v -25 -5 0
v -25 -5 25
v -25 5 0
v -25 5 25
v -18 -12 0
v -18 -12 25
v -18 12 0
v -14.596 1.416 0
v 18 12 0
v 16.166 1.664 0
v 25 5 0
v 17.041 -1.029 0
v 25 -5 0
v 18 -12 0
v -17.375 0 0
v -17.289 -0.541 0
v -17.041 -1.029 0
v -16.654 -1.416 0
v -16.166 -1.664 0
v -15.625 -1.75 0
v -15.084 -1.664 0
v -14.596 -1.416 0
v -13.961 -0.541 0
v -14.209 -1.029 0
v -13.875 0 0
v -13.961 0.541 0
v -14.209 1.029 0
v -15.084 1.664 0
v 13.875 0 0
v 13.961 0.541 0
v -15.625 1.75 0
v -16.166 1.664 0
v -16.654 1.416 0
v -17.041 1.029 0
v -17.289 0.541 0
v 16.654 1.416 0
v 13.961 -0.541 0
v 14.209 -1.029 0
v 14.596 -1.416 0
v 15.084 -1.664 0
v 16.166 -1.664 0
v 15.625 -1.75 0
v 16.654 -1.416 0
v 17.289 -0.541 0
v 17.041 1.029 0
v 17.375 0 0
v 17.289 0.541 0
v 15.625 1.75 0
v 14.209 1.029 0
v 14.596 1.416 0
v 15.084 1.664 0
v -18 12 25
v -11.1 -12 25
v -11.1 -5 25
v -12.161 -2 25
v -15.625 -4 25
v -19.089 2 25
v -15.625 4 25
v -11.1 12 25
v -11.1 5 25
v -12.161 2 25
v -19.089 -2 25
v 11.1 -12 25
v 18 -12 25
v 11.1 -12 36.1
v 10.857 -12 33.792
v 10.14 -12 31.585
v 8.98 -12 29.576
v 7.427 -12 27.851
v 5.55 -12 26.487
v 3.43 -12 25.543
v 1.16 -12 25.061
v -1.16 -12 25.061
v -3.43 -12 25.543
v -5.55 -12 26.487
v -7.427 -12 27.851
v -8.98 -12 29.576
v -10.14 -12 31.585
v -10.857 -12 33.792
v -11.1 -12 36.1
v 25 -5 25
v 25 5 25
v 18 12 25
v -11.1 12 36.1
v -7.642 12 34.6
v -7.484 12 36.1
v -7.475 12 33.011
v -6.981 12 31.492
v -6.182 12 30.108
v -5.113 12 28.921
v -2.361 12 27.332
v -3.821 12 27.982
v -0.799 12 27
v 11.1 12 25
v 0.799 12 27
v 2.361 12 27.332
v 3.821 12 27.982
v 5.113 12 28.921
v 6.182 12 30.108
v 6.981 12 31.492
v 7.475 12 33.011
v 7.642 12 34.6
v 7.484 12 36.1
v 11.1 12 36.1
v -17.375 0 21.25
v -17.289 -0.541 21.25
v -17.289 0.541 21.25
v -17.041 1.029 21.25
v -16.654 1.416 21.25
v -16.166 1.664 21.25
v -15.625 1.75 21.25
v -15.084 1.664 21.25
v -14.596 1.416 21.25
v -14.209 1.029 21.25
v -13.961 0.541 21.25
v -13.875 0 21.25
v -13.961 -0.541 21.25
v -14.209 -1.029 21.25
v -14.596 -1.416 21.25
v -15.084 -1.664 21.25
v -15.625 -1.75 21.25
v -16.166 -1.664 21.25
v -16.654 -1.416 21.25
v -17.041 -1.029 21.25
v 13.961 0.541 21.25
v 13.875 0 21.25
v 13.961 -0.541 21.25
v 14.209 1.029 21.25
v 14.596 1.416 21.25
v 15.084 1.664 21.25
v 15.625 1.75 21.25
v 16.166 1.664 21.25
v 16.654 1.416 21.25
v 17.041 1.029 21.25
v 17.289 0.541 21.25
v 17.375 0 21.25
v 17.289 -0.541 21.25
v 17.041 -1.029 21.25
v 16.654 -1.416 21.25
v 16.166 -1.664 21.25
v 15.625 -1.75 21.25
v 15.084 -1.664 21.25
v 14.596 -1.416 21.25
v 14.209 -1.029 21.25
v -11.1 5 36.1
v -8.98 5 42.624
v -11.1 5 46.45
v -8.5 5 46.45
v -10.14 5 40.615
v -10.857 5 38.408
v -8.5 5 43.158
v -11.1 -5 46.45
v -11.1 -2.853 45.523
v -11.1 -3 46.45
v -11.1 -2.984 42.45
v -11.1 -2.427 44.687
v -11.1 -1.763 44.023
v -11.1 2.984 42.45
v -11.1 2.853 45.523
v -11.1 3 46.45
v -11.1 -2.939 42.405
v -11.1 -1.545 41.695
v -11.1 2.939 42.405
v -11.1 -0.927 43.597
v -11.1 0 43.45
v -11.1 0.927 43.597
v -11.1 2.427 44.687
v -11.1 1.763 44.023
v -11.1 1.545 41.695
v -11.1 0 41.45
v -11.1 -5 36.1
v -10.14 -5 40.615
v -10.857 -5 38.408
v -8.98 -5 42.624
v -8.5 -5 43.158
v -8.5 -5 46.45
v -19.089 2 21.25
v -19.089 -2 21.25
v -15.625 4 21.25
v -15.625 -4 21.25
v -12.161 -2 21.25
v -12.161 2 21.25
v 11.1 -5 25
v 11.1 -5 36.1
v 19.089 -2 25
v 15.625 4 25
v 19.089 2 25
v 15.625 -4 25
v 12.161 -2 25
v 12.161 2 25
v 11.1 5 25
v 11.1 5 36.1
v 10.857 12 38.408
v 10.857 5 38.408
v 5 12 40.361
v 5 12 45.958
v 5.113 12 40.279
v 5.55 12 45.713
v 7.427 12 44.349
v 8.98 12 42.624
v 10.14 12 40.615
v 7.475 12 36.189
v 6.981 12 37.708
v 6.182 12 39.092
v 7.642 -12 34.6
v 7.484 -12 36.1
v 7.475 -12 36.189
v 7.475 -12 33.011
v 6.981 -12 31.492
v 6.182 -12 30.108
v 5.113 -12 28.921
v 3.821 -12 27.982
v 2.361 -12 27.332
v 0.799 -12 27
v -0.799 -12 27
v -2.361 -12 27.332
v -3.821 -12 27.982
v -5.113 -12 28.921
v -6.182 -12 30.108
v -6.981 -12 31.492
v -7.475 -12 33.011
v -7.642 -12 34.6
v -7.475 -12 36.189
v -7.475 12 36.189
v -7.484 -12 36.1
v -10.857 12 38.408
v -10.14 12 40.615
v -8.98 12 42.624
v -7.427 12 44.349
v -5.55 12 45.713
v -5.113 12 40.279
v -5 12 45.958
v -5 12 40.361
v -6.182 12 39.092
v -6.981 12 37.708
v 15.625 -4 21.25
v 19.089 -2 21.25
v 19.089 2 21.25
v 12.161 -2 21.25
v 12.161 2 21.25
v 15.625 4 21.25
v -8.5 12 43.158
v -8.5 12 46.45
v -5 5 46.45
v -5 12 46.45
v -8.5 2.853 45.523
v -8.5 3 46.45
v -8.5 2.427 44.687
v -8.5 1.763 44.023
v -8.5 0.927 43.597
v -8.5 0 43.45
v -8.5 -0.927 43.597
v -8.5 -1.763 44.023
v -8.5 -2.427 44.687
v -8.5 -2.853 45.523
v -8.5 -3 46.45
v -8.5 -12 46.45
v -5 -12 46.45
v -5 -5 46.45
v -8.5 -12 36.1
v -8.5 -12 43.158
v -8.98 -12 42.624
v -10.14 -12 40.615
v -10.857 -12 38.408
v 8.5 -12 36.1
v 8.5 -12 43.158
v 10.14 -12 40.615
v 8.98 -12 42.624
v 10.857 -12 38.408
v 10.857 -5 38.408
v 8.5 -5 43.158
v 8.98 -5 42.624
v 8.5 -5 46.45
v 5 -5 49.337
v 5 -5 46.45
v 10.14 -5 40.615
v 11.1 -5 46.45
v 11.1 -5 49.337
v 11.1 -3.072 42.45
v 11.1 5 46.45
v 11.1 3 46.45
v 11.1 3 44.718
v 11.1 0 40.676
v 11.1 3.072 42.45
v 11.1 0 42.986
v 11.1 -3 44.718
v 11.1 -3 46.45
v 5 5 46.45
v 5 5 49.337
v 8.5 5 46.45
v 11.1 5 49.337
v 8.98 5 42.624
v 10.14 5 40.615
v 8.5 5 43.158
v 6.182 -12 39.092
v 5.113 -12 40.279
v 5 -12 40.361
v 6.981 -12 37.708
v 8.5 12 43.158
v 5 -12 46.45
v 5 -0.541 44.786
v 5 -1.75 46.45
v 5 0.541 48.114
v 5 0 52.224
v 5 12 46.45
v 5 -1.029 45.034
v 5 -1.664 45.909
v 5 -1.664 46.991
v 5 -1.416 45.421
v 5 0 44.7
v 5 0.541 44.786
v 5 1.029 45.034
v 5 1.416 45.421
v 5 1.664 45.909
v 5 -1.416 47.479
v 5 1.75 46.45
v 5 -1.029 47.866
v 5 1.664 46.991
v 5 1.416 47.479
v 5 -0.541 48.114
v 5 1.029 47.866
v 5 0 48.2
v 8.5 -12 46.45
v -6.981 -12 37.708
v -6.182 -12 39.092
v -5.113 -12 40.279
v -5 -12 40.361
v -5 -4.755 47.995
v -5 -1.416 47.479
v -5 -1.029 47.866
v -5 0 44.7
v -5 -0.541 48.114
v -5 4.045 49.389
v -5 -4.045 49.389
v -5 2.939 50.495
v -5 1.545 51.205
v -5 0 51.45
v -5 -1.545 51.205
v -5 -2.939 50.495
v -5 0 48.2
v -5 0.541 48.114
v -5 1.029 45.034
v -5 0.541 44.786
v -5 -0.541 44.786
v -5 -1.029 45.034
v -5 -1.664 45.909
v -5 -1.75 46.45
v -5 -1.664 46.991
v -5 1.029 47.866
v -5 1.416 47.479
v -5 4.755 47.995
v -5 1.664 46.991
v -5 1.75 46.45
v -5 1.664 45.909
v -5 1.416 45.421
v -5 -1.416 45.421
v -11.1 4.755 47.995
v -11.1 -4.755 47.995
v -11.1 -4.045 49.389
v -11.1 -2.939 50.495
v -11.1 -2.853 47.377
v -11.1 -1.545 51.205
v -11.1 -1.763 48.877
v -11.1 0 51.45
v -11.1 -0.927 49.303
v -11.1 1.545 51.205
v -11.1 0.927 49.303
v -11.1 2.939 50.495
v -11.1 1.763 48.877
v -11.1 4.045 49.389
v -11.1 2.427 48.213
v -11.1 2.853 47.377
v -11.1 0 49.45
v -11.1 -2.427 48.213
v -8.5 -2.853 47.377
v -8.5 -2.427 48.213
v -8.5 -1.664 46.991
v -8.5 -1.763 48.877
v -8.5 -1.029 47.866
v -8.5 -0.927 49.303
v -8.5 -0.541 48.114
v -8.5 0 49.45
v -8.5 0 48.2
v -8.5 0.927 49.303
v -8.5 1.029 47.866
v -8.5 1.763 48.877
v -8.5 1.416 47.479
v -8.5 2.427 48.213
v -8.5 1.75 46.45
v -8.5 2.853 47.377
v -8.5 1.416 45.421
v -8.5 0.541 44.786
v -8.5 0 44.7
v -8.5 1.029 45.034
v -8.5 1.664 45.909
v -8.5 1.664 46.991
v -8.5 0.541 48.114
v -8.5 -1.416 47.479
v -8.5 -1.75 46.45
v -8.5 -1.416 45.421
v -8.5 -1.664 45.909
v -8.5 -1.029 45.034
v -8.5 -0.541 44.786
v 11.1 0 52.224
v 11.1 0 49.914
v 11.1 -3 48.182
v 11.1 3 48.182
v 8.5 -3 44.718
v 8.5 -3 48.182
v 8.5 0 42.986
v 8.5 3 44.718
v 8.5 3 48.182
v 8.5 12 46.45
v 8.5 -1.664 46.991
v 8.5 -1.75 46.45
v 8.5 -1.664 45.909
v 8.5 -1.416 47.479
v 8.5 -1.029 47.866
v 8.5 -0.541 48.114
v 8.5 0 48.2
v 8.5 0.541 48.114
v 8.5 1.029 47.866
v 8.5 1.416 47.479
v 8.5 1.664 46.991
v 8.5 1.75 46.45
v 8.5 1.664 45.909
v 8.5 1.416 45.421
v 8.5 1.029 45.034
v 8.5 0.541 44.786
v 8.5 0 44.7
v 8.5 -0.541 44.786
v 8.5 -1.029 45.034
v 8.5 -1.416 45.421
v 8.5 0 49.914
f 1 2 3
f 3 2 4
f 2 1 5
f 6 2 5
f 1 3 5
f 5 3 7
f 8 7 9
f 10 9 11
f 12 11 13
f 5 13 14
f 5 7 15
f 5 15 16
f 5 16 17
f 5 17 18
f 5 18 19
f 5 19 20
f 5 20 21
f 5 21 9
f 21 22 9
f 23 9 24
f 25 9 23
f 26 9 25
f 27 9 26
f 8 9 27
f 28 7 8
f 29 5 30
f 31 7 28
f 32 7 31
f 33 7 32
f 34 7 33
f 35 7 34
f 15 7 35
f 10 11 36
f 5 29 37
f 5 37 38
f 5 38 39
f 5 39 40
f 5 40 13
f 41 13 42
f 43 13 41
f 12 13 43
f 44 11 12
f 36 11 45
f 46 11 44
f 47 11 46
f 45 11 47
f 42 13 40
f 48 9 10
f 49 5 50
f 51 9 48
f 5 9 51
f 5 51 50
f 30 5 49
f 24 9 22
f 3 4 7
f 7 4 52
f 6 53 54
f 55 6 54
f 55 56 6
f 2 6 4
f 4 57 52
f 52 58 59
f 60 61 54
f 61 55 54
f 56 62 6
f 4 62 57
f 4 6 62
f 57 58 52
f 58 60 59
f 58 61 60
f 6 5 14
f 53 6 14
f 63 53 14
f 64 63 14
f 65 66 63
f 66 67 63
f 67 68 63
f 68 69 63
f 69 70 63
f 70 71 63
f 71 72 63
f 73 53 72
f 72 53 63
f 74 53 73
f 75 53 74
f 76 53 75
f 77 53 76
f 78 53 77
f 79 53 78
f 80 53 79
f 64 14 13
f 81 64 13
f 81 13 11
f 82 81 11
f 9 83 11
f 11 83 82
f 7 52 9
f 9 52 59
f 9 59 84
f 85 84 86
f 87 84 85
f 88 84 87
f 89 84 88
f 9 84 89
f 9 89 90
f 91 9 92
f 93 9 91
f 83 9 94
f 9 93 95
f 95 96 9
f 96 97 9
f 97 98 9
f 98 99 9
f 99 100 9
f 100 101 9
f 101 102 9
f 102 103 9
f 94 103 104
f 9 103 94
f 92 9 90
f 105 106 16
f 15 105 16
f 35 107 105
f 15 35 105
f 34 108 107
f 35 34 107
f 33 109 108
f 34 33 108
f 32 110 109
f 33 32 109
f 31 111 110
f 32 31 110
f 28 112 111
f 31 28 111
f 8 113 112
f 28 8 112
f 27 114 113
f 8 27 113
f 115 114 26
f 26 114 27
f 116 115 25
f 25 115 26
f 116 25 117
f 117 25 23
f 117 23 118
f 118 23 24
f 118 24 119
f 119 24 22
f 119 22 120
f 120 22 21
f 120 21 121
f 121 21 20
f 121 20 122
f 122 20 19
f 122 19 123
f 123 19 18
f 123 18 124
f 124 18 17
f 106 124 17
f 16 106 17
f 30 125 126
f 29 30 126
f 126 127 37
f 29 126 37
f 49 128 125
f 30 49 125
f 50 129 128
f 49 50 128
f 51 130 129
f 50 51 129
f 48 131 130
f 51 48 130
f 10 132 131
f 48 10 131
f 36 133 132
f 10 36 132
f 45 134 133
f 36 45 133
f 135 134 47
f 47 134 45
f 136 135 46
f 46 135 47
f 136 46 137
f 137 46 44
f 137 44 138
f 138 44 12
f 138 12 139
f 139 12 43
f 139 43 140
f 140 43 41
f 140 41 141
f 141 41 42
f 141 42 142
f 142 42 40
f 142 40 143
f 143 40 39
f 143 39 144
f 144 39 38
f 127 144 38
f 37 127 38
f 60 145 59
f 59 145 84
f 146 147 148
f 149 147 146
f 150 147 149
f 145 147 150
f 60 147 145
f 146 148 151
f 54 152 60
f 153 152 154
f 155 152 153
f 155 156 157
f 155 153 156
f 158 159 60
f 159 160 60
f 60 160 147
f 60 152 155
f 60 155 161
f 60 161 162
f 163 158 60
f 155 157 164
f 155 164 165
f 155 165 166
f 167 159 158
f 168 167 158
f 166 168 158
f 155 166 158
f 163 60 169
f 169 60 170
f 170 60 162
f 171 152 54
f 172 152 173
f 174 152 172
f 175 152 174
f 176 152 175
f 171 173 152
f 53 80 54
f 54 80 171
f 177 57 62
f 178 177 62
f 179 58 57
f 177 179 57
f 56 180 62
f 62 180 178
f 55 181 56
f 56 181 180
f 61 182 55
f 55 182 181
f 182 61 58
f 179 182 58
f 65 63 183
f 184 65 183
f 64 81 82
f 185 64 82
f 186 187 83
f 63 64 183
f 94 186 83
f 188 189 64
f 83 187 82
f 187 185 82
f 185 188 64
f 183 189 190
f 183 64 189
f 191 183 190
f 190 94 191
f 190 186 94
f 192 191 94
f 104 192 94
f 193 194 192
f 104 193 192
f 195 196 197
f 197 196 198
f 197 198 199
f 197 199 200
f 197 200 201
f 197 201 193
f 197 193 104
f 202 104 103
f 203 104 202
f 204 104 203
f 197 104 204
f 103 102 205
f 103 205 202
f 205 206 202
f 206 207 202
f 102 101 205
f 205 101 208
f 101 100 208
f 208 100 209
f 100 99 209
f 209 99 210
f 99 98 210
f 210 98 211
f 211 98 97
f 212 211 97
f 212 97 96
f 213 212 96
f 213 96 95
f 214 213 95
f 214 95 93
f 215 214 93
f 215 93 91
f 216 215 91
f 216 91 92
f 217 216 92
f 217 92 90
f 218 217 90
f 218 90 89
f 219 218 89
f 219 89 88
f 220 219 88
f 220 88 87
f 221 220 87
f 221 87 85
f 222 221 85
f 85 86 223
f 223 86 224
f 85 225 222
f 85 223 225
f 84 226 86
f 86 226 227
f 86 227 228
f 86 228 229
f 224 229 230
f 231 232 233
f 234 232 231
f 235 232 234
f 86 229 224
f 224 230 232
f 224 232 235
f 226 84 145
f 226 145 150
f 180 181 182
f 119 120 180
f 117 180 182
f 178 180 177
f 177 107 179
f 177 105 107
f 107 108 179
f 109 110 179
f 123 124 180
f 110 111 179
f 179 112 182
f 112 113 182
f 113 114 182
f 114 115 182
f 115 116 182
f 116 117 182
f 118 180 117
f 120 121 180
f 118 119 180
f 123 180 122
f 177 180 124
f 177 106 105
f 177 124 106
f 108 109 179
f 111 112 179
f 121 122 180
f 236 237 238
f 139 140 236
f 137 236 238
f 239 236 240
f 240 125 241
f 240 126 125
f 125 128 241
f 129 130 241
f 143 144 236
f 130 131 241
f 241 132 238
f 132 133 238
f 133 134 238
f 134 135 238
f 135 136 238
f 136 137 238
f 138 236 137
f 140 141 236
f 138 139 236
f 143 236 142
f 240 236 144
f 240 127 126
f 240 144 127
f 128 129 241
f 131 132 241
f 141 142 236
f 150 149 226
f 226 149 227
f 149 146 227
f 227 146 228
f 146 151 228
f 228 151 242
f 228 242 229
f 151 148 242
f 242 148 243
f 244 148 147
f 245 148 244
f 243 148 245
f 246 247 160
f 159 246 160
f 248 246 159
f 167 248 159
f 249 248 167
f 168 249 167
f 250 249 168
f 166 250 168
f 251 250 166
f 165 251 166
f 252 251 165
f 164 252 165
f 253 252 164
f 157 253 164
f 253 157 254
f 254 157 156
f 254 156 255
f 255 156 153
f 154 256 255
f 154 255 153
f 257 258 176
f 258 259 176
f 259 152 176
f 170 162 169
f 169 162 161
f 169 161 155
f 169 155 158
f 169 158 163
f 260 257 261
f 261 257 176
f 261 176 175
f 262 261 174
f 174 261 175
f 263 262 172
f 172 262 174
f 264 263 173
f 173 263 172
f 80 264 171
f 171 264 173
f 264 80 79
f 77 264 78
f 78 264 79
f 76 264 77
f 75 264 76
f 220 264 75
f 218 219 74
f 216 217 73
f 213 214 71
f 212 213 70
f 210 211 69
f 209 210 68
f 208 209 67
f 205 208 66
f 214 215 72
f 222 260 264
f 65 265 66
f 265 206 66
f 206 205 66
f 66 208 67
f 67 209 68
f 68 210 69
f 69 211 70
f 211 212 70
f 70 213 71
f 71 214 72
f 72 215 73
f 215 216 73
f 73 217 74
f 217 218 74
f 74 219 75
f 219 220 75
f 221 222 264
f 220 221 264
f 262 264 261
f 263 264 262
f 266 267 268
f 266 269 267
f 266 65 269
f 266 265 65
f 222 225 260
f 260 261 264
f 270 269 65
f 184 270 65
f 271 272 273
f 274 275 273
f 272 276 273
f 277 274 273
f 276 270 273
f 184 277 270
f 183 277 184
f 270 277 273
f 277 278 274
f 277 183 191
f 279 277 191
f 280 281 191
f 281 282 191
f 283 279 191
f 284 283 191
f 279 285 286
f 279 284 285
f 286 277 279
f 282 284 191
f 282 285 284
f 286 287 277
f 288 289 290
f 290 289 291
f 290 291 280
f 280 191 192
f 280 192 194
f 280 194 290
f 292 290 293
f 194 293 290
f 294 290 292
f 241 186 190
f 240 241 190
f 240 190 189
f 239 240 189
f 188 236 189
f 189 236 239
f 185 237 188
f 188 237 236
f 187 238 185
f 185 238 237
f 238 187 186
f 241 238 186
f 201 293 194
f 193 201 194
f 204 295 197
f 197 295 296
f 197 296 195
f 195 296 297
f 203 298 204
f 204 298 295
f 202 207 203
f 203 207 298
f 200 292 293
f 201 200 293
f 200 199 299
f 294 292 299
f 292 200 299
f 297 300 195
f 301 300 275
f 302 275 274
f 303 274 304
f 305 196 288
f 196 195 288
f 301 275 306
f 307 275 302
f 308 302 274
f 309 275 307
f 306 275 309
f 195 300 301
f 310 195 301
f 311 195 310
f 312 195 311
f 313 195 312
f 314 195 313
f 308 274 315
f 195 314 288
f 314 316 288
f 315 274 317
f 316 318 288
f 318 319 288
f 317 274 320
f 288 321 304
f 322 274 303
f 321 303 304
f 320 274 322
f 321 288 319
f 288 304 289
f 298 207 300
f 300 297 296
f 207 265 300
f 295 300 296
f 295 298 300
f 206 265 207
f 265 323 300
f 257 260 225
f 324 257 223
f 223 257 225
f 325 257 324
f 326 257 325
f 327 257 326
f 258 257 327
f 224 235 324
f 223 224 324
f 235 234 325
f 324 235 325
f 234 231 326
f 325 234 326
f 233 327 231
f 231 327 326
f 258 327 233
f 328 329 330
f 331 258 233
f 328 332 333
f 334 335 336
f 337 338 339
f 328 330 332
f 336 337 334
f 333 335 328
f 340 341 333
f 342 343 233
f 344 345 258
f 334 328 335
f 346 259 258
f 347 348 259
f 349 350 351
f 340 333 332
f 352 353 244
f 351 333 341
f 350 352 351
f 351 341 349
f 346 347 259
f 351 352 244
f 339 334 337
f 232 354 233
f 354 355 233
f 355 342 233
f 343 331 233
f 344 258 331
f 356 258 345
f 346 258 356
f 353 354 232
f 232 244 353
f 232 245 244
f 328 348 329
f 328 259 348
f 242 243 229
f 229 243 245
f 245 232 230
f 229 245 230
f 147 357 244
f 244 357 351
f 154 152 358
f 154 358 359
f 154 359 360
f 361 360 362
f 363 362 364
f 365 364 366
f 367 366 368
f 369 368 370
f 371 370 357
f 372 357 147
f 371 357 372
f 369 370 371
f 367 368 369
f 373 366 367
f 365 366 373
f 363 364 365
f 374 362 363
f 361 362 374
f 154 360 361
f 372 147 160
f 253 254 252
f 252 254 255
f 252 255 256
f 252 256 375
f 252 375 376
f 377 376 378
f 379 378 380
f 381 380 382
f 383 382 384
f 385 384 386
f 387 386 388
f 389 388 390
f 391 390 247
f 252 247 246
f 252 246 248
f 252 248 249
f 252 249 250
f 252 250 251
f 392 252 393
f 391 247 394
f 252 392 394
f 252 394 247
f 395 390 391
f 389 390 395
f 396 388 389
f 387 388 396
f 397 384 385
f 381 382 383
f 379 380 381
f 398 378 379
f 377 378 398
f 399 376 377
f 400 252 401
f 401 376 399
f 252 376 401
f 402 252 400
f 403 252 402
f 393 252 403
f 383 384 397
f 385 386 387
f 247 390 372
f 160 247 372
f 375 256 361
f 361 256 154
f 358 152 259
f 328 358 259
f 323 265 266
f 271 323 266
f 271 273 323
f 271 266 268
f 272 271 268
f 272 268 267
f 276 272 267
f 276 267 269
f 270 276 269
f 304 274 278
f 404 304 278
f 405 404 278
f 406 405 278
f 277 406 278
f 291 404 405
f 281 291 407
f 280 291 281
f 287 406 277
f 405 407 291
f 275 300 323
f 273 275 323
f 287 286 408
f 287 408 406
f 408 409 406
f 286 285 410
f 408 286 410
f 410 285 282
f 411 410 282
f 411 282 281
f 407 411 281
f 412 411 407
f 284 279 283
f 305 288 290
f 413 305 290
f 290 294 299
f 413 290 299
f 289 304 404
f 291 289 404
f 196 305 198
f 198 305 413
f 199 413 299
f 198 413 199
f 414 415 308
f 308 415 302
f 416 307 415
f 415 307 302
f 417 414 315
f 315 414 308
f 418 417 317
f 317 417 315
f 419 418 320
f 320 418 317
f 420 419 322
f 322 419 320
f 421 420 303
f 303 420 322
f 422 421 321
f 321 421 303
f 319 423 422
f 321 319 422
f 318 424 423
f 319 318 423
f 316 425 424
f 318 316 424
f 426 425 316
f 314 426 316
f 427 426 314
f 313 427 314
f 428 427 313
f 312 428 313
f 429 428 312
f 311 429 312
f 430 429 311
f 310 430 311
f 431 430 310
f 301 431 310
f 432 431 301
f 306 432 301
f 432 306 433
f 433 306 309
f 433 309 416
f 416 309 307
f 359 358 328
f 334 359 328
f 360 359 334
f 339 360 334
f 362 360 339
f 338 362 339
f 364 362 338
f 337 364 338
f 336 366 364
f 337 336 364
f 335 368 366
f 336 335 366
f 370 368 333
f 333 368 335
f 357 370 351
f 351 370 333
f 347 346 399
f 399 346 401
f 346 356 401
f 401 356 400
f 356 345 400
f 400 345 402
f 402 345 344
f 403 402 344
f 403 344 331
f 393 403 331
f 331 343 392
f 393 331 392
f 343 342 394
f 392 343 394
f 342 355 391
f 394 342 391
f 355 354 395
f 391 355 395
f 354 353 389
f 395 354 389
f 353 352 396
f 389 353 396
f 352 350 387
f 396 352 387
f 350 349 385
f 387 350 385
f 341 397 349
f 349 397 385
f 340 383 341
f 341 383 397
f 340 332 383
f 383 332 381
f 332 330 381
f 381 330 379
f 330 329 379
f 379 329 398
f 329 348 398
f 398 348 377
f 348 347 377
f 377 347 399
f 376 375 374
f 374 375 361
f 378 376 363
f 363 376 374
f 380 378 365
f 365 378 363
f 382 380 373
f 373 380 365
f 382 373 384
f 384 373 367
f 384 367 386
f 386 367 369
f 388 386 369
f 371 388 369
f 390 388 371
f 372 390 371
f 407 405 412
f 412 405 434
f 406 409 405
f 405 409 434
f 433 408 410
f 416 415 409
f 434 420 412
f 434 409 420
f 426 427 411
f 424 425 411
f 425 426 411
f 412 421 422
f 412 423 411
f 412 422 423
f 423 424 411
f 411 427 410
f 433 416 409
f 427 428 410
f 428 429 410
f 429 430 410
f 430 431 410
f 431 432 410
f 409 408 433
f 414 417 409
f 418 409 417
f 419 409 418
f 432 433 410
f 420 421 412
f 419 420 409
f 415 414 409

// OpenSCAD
// file: lm8uu-holder-slim_v1-1.scad
// LM8UU holder slim v1.1
// *********************************************
// Jonas Kühling
// http://www.jonaskuehling.de
// http://www.thingiverse.com/jonaskuehling
// *********************************************
// derived from:
// http://www.thingiverse.com/thing:14942

// LM8UU/rod dimensions
LM8UU_dia = 15.2;
LM8UU_length = 24;
rod_dia = 8;

//screw/nut dimensions (M3) - hexagon socket head cap screw ISO 4762, hexagon nut ISO 4032
screw_thread_dia_iso = 3;
screw_head_dia_iso = 5.5;
nut_wrench_size_iso = 5.5;


// screw/nut dimensions for use (plus clearance for fitting purpose)
clearance_dia = 0.5;
screw_thread_dia = screw_thread_dia_iso + clearance_dia;
screw_head_dia = screw_head_dia_iso + clearance_dia;
nut_wrench_size = nut_wrench_size_iso + clearance_dia;
nut_dia_perimeter = (nut_wrench_size/cos(30));
nut_dia = nut_dia_perimeter;
nut_surround_thickness = 2;

// main body dimensions
body_wall_thickness = 3.5;
body_width = LM8UU_dia + (2*body_wall_thickness);
body_height = body_width;
body_length = LM8UU_length;
gap_width = rod_dia + 2;
screw_bushing_space = 1;
screw_elevation = LM8UU_dia + body_wall_thickness + (screw_thread_dia/2) +screw_bushing_space;

// TEST - uncomment to render in openscad:
lm8uu_holder(1);		// WITH mountplate
// lm8uu_holder();		// WITHOUT mountplate


// nophead's polyhole module for better lm8uu-fit
module polyhole(d,h) {
    n = max(round(2 * d),3);
    rotate([0,0,180])
        cylinder(h = h, r = (d / 2) / cos (180 / n), $fn = n);
}


module mount_plate()
{
	difference()
	{
		translate([0,0,1.5])
		cube([body_width+2*screw_head_dia+4*nut_surround_thickness,screw_head_dia+2*nut_surround_thickness,3], center=true);

		for(i=[-1,1])
			translate([i*(body_width/2+nut_surround_thickness+screw_head_dia/2),0,-0.5])
				cylinder(r=screw_thread_dia/2, h=4, $fn=20);
	}
}

// main body
module lm8uu_holder(with_mountplate=false)
{
	difference()
	{
		union()
		{
			if (with_mountplate) 
			mount_plate();
	
			// body
			translate([0,0,body_height/4])
				cube([body_width,body_length,body_height/2], center=true);
			translate([0,0,(LM8UU_dia/2)+body_wall_thickness])		
				rotate([90,0,0])
					cylinder(r=(LM8UU_dia/2)+body_wall_thickness, h=LM8UU_length, center=true);
	
			// gap support
			translate([-(gap_width/2)-body_wall_thickness,-(body_length/2),body_height/2])
				cube([body_wall_thickness,LM8UU_length,(LM8UU_dia/2)+screw_bushing_space+(screw_thread_dia/2)]);
			translate([gap_width/2,-(body_length/2),body_height/2])
				cube([body_wall_thickness,LM8UU_length,(LM8UU_dia/2)+screw_bushing_space+(screw_thread_dia/2)]);
	
	
			// nut trap surround
			translate([gap_width/2,0,screw_elevation])
				rotate([0,90,0])
					cylinder(r=(((nut_wrench_size+nut_surround_thickness*2)/cos(30))/2), h=(body_width-gap_width)/2, $fn=6);
			translate([gap_width/2+(body_width-gap_width)/4,0,screw_elevation/2])
				cube([(body_width-gap_width)/2,nut_wrench_size+(nut_surround_thickness*2),screw_elevation],center=true);

			// Screw hole surround
			translate([-gap_width/2,0,screw_elevation])
				rotate([0,-90,0])
					cylinder(r=(screw_head_dia/2)+nut_surround_thickness, h=(body_width-gap_width)/2, $fn=20);
			translate([-(gap_width/2+(body_width-gap_width)/4),0,screw_elevation/2])
				cube([(body_width-gap_width)/2,screw_head_dia+(nut_surround_thickness*2),screw_elevation],center=true);
		}
	
		// bushing hole
		translate([0,0,LM8UU_dia/2+2])
			rotate([90,0,0])
//				cylinder(r=LM8UU_dia/2, h=LM8UU_length+1, center=true);
				translate([0,0,-(LM8UU_length+1)/2]) polyhole(LM8UU_dia,LM8UU_length+1);	// TESTING POLYHOLE MODULE FOR BETTER LM8UU FIT
	
		// top gap
		translate([-(gap_width/2),-(body_length/2)-1,body_height/2])
			cube([gap_width,LM8UU_length+2,(LM8UU_dia/2)+screw_bushing_space+(screw_thread_dia/2)+(nut_dia/2)+nut_surround_thickness+1]);
	
		// screw hole (one all the way through)
		translate([0,0,screw_elevation])
			rotate([0,90,0])
				cylinder(r=screw_thread_dia/2, h=body_width+3, center=true, $fn=20);
	
		// nut trap
		translate([gap_width/2+body_wall_thickness,0,screw_elevation])
			rotate([0,90,0])
				cylinder(r=nut_dia/2, h=body_width/2-gap_width/2-body_wall_thickness+1,$fn=6);
	
		// screw head hole
		translate([-(gap_width)/2-body_wall_thickness,0,screw_elevation])
			rotate([0,-90,0])
				cylinder(r=screw_head_dia/2, h=body_width/2-gap_width/2-body_wall_thickness+1,$fn=20);
	
	}
}
// main file
use <lm8uu-holder-slim_v1-1.scad>

lm8uu_with_spacer(25);

module mount_plate()
{
	difference()
	{ 
		hull() {
			cube([36,24,25], center=true);
			cube([50,10,25], center=true);
		}
		for(i=[-1,1]) {
			translate([i * (15.625), 0, -12.51])
				cylinder(r=1.75, h=25.02, $fn=20);
			// nut trap
			translate([i * (15.625), 0, 8.75])
				rotate([0, 0, 90])
					cylinder(r=4, h=20, $fn=6);
		}
	}
}

module lm8uu_with_spacer(spacer_height) {
  translate([0, 0, spacer_height]) lm8uu_holder(0);		// WITH mountplate
  translate([0, 0, 12.5]) cube([22, 24, 25], center=true);
  translate([0, 0, 12.5]) mount_plate();
}
